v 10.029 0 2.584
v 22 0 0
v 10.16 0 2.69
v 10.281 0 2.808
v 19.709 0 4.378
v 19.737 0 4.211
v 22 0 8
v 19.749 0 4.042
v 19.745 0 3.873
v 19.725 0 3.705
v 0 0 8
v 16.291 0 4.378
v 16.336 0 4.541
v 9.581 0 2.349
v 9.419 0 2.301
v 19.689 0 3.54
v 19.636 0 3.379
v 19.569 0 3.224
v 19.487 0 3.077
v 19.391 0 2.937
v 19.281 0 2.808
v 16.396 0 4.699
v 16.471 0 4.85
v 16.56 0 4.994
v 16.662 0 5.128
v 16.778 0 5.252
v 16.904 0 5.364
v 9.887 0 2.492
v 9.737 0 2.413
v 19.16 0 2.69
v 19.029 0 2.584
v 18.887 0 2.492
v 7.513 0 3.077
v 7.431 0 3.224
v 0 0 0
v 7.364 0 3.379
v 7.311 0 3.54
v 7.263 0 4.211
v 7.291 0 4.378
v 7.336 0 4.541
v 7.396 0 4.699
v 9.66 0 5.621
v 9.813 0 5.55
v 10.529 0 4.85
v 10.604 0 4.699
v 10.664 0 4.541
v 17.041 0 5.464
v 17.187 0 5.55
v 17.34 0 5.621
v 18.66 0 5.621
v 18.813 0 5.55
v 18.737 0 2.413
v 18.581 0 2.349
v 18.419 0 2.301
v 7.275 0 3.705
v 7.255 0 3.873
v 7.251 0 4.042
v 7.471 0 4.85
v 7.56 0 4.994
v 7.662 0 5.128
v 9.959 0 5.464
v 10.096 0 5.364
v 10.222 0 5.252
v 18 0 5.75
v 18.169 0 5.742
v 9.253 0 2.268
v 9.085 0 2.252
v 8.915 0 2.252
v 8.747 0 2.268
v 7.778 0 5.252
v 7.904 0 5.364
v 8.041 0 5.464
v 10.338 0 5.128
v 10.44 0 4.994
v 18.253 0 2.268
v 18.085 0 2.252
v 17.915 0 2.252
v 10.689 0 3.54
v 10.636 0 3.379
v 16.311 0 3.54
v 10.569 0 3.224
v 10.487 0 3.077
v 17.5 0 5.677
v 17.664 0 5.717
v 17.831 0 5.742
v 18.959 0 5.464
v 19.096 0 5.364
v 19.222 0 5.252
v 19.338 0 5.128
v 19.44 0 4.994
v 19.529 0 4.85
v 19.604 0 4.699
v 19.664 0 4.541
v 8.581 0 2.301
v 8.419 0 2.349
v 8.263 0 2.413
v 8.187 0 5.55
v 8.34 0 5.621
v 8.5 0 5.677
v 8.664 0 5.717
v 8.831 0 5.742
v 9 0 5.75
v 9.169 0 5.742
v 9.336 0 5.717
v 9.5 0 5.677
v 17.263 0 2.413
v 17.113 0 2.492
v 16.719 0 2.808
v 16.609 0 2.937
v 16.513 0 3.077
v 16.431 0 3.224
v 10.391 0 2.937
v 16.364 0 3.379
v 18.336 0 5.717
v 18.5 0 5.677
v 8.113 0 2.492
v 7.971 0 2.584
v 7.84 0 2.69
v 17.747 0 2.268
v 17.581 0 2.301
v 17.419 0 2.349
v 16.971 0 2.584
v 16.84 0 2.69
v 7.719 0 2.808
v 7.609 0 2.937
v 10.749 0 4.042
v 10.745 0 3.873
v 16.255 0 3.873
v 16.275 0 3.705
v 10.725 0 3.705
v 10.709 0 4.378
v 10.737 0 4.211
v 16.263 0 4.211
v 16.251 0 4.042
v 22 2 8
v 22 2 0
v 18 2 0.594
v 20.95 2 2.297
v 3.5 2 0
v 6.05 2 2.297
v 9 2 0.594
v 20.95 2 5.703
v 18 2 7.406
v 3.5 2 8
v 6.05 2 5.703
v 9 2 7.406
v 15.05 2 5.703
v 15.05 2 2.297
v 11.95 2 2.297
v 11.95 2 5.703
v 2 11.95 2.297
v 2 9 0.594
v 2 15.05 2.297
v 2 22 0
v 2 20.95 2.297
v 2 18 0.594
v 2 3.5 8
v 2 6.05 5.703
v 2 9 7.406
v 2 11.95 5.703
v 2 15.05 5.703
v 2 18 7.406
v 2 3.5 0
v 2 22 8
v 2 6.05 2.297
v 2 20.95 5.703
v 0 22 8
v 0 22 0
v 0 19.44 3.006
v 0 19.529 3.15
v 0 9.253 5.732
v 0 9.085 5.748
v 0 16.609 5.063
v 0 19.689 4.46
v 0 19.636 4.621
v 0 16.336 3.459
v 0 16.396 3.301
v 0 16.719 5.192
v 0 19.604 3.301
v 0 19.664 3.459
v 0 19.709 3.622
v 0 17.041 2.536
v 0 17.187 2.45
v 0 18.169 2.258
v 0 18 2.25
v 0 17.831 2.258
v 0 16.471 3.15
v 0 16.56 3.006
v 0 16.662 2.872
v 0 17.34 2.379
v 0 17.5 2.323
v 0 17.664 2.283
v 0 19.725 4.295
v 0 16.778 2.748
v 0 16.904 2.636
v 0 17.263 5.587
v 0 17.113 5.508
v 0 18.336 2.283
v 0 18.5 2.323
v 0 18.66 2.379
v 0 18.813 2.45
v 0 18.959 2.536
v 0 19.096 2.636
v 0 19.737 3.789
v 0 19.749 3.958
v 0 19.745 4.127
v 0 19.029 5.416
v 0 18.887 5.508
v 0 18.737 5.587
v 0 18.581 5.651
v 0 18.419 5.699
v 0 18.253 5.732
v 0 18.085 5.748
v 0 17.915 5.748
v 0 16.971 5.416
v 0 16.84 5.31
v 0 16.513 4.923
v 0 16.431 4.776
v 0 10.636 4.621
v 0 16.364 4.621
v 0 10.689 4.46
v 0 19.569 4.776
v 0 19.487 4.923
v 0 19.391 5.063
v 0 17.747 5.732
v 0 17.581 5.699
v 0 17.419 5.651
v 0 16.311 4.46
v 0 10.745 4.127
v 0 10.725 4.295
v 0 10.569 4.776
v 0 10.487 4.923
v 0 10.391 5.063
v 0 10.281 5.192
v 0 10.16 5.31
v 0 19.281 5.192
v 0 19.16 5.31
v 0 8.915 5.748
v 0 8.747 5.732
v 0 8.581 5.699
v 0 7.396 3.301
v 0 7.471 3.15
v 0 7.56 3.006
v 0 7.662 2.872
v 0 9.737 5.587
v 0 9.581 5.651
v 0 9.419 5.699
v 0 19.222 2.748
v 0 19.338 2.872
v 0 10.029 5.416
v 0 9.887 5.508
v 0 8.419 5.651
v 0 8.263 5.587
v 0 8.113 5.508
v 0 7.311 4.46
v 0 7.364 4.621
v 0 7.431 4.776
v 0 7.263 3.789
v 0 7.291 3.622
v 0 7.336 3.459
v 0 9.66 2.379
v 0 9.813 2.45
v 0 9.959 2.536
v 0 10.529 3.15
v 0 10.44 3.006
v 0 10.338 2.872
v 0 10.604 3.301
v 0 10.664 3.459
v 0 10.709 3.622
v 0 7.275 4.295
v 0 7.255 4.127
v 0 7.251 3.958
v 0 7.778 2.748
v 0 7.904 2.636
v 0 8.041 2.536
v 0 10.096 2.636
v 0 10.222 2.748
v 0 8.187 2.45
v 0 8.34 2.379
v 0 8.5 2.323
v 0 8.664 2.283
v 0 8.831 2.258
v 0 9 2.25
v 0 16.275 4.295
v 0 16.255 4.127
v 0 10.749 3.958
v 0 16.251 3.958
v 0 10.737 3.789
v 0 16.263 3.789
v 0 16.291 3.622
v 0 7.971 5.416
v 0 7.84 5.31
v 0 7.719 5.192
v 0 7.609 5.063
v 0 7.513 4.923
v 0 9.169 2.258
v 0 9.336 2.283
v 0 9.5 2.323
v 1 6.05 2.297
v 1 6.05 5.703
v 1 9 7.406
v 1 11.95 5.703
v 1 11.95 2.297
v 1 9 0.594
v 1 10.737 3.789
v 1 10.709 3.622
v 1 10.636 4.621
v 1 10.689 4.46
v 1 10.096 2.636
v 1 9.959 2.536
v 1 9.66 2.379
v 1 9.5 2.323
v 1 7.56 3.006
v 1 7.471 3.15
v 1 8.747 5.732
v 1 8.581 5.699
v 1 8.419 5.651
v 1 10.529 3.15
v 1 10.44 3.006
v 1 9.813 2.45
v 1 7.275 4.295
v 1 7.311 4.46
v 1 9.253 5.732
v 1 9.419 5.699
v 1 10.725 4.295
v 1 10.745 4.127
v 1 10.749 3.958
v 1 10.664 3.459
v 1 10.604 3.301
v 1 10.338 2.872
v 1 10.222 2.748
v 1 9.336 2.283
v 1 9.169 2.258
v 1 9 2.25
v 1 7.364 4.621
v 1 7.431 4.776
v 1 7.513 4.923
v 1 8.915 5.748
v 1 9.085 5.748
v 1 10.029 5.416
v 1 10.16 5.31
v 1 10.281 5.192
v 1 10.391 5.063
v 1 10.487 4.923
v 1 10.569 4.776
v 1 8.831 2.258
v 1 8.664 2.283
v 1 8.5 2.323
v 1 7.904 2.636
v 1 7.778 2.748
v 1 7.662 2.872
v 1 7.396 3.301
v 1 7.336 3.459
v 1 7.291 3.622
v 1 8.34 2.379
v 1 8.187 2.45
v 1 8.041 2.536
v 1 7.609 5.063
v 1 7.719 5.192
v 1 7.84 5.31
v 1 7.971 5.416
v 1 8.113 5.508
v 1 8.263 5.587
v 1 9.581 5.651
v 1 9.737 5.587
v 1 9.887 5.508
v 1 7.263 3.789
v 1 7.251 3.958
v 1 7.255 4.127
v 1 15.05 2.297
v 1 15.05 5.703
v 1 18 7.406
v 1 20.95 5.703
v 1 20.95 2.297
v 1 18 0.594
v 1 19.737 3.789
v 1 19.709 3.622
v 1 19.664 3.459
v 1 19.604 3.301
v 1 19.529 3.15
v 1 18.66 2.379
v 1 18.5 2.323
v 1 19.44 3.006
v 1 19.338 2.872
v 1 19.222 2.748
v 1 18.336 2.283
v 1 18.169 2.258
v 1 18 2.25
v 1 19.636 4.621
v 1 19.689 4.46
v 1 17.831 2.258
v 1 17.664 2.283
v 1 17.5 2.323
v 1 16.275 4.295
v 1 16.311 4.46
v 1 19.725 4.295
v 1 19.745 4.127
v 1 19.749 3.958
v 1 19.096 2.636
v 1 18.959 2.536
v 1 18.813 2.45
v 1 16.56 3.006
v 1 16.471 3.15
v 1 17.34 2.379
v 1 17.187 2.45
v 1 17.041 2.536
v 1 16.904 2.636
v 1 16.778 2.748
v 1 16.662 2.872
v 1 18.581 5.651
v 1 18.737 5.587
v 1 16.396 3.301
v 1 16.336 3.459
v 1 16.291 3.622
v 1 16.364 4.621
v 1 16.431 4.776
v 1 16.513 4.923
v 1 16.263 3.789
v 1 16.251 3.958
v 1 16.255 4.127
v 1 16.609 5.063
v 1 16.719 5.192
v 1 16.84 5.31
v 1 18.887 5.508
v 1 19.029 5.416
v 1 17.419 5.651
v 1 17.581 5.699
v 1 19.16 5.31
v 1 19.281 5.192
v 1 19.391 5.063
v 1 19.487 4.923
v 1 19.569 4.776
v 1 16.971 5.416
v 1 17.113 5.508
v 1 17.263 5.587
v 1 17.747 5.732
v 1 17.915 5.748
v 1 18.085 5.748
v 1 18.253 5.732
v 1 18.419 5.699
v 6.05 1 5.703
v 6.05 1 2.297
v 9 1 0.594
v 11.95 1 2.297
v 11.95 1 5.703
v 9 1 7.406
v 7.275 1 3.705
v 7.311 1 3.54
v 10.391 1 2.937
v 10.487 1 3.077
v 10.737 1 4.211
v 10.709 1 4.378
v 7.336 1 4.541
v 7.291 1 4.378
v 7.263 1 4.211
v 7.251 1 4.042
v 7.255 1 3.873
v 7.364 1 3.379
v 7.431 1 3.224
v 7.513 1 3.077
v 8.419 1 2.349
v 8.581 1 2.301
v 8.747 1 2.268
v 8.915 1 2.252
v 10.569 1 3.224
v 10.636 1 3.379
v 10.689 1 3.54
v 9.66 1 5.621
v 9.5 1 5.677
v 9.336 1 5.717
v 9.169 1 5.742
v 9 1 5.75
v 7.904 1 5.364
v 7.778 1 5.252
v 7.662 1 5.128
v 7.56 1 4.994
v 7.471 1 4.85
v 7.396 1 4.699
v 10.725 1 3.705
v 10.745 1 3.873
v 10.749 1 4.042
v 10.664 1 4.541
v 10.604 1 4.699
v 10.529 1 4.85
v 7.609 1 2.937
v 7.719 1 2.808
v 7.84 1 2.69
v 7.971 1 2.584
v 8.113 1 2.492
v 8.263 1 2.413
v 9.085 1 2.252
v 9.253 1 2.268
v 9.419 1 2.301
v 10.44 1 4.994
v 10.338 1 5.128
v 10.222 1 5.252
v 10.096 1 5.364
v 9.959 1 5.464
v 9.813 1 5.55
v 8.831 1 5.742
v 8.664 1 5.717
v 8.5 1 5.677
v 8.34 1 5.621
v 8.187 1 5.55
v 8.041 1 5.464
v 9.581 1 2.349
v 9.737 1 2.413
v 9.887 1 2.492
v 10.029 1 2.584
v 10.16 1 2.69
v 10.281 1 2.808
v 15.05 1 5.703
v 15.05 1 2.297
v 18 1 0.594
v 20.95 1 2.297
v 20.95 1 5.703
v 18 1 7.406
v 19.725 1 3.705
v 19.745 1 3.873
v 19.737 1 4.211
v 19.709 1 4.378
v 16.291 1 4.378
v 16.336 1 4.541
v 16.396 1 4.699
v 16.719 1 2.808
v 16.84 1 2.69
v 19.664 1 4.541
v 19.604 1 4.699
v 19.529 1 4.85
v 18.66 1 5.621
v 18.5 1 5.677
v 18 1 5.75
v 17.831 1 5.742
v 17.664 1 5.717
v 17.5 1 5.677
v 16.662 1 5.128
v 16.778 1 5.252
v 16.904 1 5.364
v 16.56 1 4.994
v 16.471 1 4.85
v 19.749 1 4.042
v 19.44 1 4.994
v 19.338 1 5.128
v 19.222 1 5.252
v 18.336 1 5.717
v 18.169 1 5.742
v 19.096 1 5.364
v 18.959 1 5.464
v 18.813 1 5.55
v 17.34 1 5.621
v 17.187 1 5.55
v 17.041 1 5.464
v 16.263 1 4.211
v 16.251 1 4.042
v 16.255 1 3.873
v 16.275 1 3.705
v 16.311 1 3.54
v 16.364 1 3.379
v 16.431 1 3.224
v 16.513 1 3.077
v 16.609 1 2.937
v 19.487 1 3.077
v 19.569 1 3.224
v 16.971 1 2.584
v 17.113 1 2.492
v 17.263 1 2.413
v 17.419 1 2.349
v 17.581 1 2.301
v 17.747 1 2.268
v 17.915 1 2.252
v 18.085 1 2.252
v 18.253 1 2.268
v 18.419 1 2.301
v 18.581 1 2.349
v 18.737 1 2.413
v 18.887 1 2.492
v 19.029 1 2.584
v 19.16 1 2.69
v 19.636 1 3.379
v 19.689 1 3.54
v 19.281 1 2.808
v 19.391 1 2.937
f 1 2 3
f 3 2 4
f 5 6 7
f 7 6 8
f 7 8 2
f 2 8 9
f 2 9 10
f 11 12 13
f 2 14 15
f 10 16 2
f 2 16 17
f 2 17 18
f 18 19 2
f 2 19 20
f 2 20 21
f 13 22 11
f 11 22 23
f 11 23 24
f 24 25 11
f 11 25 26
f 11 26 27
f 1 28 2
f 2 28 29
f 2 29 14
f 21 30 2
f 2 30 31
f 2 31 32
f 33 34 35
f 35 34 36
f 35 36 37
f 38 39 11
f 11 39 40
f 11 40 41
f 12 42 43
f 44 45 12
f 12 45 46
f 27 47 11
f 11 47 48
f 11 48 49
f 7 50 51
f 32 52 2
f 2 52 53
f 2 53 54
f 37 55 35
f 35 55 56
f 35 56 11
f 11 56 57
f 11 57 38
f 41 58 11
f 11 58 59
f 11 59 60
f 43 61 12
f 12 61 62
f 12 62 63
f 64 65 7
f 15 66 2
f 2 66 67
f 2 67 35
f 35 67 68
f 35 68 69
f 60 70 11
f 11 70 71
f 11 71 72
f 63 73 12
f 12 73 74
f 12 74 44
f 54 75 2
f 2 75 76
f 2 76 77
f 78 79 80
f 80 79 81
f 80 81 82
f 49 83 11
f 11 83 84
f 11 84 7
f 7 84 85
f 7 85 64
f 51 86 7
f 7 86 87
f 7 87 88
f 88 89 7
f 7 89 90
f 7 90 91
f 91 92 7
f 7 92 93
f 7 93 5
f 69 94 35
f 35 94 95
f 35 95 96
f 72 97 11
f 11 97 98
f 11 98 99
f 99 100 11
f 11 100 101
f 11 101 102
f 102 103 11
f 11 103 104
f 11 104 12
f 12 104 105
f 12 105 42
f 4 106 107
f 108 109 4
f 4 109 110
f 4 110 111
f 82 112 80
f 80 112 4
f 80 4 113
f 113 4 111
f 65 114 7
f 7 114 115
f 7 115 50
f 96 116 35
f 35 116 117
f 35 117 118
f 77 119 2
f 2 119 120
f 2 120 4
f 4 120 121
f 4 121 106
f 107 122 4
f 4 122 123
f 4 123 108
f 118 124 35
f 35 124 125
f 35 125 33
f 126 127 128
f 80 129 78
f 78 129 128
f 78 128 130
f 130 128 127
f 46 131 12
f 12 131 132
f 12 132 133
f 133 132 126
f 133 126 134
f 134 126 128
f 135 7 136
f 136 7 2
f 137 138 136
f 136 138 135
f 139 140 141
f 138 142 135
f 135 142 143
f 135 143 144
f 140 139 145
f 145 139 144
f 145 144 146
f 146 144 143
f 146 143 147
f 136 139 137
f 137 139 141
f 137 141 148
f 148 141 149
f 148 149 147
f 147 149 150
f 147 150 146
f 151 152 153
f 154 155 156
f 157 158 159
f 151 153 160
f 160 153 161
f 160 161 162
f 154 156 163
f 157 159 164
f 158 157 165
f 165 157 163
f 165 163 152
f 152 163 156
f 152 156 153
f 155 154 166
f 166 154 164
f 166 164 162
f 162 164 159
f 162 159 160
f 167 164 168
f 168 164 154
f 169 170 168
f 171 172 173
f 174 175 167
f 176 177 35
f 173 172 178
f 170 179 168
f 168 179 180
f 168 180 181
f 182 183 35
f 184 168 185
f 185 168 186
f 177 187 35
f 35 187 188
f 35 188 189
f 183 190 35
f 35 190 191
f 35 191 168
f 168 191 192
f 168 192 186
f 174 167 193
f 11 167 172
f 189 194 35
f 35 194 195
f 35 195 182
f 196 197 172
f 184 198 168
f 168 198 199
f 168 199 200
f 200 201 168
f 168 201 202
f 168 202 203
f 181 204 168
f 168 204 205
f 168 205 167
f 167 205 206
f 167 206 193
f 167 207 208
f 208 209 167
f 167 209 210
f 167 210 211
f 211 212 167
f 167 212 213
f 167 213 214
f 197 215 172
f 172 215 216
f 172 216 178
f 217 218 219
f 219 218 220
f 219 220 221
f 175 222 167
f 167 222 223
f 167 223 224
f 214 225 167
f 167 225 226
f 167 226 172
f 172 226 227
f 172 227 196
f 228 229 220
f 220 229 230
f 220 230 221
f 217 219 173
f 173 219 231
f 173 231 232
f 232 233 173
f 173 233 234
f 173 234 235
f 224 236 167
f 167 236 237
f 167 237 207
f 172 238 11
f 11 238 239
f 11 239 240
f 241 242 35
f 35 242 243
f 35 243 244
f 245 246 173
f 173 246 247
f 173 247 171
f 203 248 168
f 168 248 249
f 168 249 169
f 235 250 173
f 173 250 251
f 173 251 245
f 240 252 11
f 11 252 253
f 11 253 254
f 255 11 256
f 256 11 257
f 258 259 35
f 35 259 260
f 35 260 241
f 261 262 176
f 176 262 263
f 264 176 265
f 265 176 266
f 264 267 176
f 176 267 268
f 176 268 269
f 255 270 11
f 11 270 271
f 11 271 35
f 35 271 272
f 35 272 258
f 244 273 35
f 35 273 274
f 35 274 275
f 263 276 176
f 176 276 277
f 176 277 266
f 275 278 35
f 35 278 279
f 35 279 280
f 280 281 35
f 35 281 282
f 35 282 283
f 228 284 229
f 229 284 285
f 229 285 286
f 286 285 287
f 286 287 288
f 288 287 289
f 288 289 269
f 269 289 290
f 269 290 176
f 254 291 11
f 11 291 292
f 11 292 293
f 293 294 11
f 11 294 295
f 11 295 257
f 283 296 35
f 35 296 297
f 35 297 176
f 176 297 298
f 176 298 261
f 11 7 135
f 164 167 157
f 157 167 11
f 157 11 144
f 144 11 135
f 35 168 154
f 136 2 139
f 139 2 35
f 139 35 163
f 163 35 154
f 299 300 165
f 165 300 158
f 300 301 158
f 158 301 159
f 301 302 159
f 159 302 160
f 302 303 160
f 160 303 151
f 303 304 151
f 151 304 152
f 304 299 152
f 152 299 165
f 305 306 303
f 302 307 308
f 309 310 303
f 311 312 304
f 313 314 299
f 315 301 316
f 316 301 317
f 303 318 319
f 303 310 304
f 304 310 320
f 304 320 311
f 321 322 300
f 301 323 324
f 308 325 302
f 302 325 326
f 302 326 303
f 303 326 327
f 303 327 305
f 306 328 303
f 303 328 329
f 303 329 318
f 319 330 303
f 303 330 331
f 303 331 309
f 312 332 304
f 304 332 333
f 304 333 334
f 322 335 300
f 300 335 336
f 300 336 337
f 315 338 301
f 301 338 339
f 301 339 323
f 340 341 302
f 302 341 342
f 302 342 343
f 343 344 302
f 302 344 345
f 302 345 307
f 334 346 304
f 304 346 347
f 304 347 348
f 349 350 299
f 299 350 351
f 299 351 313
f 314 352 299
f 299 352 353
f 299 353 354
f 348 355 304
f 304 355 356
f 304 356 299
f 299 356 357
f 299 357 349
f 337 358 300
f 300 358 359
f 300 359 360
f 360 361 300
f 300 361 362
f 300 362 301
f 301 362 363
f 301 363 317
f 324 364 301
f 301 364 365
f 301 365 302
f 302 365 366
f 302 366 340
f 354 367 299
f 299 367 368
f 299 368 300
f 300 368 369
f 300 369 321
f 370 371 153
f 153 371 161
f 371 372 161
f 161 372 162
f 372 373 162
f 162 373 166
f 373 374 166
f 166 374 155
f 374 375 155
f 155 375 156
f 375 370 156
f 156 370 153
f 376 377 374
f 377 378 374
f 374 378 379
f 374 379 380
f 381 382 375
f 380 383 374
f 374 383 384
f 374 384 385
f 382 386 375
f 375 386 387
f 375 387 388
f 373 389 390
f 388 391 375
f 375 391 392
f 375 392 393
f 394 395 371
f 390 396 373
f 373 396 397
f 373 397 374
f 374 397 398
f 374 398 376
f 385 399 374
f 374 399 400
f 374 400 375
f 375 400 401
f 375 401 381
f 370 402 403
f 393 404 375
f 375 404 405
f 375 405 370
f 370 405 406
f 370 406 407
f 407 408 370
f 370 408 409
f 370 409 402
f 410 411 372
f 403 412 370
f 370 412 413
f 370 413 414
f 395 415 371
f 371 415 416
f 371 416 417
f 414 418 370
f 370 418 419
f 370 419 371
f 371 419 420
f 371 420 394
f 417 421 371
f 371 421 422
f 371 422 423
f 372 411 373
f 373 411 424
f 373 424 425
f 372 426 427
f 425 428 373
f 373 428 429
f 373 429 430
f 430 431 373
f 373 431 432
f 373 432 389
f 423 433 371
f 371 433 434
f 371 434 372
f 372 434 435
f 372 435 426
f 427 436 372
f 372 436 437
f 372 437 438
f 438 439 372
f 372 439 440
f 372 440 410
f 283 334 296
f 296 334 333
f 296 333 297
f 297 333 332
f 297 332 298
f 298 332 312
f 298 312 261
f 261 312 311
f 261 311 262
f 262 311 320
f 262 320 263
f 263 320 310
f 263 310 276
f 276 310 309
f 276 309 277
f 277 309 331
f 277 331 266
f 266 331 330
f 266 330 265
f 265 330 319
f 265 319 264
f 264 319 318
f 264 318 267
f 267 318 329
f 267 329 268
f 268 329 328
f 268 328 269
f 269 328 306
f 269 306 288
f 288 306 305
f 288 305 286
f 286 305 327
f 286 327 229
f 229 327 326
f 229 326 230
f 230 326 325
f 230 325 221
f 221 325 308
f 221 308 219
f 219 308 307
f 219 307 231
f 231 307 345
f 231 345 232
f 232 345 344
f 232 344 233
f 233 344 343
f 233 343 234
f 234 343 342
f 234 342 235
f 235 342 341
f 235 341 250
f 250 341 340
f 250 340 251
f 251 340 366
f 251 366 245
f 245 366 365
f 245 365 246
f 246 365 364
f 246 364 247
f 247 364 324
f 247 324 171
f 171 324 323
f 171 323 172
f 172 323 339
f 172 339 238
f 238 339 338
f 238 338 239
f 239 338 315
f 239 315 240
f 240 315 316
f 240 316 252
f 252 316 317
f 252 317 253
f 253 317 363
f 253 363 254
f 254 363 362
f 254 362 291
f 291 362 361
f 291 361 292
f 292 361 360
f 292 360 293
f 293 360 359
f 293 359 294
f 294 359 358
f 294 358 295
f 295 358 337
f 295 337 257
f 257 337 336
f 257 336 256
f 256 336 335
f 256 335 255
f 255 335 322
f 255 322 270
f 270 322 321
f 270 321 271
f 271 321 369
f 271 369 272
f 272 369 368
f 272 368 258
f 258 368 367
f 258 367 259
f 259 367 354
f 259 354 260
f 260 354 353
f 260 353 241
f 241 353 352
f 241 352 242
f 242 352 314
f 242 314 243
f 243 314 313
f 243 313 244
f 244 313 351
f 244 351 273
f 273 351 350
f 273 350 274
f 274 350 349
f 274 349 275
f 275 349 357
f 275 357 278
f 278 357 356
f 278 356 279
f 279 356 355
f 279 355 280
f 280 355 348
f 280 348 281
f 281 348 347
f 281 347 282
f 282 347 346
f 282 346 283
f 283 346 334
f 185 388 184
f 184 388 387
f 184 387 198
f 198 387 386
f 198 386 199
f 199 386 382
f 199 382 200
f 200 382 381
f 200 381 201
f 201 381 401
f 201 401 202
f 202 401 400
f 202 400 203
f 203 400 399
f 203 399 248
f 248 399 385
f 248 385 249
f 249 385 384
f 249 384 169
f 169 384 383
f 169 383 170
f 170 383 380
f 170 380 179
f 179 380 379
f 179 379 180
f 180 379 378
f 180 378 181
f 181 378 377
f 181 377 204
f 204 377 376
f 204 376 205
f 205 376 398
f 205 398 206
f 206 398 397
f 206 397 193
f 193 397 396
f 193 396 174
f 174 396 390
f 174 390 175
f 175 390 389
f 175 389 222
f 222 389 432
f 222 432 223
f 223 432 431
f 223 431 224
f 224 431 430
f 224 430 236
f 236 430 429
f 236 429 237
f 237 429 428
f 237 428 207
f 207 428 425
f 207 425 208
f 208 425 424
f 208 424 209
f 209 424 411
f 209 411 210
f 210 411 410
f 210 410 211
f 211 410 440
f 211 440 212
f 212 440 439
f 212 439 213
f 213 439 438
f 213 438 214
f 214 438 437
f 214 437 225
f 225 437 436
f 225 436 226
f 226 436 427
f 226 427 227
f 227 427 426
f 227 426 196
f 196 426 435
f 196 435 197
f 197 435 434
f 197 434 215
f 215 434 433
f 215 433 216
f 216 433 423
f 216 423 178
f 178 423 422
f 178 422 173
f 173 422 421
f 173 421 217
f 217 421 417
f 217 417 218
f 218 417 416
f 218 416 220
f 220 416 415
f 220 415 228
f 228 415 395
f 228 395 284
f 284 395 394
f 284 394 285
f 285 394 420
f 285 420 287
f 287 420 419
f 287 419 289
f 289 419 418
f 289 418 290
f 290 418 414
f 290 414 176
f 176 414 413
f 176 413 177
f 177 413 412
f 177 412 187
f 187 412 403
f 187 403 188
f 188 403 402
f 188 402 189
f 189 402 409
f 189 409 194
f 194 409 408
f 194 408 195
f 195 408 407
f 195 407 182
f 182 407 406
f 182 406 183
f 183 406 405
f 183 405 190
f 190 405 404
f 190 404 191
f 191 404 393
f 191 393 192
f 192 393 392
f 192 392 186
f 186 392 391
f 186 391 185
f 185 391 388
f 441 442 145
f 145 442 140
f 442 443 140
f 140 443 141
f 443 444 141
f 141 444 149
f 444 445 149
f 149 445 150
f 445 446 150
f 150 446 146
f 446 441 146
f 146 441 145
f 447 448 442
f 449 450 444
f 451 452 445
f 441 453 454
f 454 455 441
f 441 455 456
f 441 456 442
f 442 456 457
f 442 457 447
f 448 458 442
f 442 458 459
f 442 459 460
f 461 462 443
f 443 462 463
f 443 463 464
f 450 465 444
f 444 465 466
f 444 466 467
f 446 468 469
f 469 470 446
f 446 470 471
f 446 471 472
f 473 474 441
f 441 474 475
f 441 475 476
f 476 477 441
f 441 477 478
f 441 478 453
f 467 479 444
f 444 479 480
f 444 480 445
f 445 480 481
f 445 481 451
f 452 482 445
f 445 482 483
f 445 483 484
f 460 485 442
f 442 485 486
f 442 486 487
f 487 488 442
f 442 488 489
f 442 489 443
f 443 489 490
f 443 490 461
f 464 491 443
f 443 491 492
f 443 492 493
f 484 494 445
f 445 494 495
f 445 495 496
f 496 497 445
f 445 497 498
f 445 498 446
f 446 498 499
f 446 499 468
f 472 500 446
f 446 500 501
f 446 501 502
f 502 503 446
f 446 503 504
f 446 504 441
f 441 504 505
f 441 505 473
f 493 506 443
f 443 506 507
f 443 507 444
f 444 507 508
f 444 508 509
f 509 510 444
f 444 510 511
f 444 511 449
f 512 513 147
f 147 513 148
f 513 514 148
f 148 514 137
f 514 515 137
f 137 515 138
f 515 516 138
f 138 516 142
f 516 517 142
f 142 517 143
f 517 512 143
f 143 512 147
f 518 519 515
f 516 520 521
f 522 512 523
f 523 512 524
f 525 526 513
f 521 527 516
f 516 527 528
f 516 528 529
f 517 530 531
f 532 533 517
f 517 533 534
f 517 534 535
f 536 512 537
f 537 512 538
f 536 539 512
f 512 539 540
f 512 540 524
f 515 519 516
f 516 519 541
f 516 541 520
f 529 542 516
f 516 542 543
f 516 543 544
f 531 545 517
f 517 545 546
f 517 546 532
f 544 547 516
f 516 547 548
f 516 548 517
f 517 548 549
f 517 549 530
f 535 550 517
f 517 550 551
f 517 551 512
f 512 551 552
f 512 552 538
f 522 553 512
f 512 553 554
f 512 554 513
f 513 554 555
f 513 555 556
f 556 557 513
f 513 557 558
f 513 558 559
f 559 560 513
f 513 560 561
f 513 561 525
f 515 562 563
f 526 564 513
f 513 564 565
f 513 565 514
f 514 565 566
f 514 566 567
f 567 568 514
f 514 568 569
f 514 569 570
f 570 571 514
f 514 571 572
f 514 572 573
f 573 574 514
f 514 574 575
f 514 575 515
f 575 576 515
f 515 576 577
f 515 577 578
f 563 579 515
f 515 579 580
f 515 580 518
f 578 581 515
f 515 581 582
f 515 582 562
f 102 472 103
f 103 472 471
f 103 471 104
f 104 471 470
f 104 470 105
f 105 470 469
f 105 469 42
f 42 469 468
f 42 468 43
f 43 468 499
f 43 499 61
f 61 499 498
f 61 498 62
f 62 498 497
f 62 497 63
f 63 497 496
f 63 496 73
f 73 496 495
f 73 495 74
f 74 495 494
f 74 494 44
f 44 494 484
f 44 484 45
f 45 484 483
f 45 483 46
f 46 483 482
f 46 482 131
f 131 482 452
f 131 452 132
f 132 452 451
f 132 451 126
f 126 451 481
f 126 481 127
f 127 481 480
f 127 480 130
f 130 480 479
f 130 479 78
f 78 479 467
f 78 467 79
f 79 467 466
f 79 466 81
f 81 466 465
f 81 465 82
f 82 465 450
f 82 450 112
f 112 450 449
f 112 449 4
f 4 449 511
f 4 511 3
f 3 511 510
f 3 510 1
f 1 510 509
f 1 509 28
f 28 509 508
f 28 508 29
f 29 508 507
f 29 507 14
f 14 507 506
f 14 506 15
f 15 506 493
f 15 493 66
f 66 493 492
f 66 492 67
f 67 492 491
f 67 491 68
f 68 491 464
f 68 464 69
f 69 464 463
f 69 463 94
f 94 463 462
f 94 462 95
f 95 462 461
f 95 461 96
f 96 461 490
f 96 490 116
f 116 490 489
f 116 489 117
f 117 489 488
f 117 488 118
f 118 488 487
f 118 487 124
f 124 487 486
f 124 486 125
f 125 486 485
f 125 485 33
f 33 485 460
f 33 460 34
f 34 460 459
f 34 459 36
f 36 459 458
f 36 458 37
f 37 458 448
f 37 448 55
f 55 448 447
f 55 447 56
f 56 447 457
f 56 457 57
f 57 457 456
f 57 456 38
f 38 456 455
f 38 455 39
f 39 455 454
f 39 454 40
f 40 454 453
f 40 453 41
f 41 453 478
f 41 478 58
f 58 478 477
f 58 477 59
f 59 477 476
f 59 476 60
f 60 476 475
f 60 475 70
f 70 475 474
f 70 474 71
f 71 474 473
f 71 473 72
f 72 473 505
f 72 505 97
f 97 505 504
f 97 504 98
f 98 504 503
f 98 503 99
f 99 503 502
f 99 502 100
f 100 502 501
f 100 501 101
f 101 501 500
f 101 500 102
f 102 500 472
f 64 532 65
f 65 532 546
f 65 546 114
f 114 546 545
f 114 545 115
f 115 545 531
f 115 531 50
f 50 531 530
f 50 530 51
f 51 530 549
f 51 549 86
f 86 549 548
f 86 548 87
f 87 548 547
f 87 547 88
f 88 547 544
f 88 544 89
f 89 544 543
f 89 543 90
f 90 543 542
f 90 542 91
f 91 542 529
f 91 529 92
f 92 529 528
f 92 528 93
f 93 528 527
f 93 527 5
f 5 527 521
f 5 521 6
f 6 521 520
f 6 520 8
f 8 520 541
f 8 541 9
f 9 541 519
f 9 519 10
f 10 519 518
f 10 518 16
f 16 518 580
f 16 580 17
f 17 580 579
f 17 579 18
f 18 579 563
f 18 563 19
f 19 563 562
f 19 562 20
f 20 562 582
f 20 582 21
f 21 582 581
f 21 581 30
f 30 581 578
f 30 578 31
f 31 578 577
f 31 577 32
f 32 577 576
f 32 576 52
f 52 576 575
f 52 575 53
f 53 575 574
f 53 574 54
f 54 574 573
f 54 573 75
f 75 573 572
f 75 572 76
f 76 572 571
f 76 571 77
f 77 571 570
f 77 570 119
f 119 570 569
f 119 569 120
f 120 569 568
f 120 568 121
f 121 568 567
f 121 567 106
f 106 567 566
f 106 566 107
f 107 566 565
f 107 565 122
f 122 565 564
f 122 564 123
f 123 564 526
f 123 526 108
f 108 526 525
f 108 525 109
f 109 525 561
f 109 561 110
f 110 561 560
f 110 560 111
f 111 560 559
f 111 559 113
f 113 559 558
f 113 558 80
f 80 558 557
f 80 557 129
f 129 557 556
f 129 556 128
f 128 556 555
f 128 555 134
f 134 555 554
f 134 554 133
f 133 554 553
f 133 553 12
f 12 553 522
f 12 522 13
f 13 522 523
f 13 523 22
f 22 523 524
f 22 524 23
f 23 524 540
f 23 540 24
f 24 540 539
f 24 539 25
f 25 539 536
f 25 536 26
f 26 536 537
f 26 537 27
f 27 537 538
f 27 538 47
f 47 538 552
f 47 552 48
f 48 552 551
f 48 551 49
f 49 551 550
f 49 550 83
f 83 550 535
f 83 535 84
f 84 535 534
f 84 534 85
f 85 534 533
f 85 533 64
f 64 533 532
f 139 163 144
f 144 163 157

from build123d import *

# Parameters (mm, degrees)
ESTRUSIONE_ESTRUSIONE1_DEPTH = 8
TAGLIO_ESTRUSIONE1_DEPTH     = 1
SCHIZZO4_R                   = 1.75
TAGLIO_ESTRUSIONE2_DEPTH     = 32.448370387
TAGLIO_ESTRUSIONE3_DEPTH     = 1
SCHIZZO6_R                   = 1.75
TAGLIO_ESTRUSIONE4_DEPTH     = 32.448370387
SMUSSO1_SIZE                 = 1.5


with BuildPart() as part:
    # Schizzo1 → Estrusione-Estrusione1 (new body)
    with BuildSketch(Plane.XY):
        Polygon((0, 0), (0, 22), (2, 22), (2, 2), (22, 2), (22, 0), align=None)
    extrude(amount=ESTRUSIONE_ESTRUSIONE1_DEPTH)

    # Schizzo2 → Taglio-Estrusione1 (cut)
    with BuildSketch(Plane(origin=(2, 0, 0), x_dir=(0, 0, -1), z_dir=(1, 0, 0))):
        Polygon((-2.296816706, 15.05), (-0.593633412, 18), (-2.296816706, 20.95), (-5.703183294, 20.95), (-7.406366588, 18), (-5.703183294, 15.05), align=None)
        Polygon((-2.296816706, 6.05), (-0.593633412, 9), (-2.296816706, 11.95), (-5.703183294, 11.95), (-7.406366588, 9), (-5.703183294, 6.05), align=None)
    extrude(amount=-TAGLIO_ESTRUSIONE1_DEPTH, mode=Mode.SUBTRACT)

    # Schizzo4 → Taglio-Estrusione2 (cut, through all)
    with BuildSketch(Plane(origin=(1, 0, 0), x_dir=(0, 0, -1), z_dir=(1, 0, 0))):
        with Locations((-4, 18)):
            Circle(SCHIZZO4_R)
        with Locations((-4, 9)):
            Circle(SCHIZZO4_R)
    extrude(amount=-TAGLIO_ESTRUSIONE2_DEPTH, mode=Mode.SUBTRACT)

    # Schizzo5 → Taglio-Estrusione3 (cut)
    with BuildSketch(Plane(origin=(0, 2, 0), x_dir=(1, 0, 0), z_dir=(0, 1, 0))):
        Polygon((15.05, -5.703183294), (18, -7.406366588), (20.95, -5.703183294), (20.95, -2.296816706), (18, -0.593633412), (15.05, -2.296816706), align=None)
        Polygon((6.05, -5.703183294), (9, -7.406366588), (11.95, -5.703183294), (11.95, -2.296816706), (9, -0.593633412), (6.05, -2.296816706), align=None)
    extrude(amount=-TAGLIO_ESTRUSIONE3_DEPTH, mode=Mode.SUBTRACT)

    # Schizzo6 → Taglio-Estrusione4 (cut, through all)
    with BuildSketch(Plane(origin=(0, 1, 0), x_dir=(1, 0, 0), z_dir=(0, 1, 0))):
        with Locations(Location((18, -4, 0), (0, 0, 270))):
            Circle(SCHIZZO6_R)
        with Locations(Location((9, -4, 0), (0, 0, 270))):
            Circle(SCHIZZO6_R)
    extrude(amount=-TAGLIO_ESTRUSIONE4_DEPTH, mode=Mode.SUBTRACT)

    # Smusso1
    smusso1_edges = [part.edges().sort_by_distance(p)[0] for p in [
        (2, 2, 4),
    ]]
    chamfer(smusso1_edges, length=SMUSSO1_SIZE)


solid = part.part
